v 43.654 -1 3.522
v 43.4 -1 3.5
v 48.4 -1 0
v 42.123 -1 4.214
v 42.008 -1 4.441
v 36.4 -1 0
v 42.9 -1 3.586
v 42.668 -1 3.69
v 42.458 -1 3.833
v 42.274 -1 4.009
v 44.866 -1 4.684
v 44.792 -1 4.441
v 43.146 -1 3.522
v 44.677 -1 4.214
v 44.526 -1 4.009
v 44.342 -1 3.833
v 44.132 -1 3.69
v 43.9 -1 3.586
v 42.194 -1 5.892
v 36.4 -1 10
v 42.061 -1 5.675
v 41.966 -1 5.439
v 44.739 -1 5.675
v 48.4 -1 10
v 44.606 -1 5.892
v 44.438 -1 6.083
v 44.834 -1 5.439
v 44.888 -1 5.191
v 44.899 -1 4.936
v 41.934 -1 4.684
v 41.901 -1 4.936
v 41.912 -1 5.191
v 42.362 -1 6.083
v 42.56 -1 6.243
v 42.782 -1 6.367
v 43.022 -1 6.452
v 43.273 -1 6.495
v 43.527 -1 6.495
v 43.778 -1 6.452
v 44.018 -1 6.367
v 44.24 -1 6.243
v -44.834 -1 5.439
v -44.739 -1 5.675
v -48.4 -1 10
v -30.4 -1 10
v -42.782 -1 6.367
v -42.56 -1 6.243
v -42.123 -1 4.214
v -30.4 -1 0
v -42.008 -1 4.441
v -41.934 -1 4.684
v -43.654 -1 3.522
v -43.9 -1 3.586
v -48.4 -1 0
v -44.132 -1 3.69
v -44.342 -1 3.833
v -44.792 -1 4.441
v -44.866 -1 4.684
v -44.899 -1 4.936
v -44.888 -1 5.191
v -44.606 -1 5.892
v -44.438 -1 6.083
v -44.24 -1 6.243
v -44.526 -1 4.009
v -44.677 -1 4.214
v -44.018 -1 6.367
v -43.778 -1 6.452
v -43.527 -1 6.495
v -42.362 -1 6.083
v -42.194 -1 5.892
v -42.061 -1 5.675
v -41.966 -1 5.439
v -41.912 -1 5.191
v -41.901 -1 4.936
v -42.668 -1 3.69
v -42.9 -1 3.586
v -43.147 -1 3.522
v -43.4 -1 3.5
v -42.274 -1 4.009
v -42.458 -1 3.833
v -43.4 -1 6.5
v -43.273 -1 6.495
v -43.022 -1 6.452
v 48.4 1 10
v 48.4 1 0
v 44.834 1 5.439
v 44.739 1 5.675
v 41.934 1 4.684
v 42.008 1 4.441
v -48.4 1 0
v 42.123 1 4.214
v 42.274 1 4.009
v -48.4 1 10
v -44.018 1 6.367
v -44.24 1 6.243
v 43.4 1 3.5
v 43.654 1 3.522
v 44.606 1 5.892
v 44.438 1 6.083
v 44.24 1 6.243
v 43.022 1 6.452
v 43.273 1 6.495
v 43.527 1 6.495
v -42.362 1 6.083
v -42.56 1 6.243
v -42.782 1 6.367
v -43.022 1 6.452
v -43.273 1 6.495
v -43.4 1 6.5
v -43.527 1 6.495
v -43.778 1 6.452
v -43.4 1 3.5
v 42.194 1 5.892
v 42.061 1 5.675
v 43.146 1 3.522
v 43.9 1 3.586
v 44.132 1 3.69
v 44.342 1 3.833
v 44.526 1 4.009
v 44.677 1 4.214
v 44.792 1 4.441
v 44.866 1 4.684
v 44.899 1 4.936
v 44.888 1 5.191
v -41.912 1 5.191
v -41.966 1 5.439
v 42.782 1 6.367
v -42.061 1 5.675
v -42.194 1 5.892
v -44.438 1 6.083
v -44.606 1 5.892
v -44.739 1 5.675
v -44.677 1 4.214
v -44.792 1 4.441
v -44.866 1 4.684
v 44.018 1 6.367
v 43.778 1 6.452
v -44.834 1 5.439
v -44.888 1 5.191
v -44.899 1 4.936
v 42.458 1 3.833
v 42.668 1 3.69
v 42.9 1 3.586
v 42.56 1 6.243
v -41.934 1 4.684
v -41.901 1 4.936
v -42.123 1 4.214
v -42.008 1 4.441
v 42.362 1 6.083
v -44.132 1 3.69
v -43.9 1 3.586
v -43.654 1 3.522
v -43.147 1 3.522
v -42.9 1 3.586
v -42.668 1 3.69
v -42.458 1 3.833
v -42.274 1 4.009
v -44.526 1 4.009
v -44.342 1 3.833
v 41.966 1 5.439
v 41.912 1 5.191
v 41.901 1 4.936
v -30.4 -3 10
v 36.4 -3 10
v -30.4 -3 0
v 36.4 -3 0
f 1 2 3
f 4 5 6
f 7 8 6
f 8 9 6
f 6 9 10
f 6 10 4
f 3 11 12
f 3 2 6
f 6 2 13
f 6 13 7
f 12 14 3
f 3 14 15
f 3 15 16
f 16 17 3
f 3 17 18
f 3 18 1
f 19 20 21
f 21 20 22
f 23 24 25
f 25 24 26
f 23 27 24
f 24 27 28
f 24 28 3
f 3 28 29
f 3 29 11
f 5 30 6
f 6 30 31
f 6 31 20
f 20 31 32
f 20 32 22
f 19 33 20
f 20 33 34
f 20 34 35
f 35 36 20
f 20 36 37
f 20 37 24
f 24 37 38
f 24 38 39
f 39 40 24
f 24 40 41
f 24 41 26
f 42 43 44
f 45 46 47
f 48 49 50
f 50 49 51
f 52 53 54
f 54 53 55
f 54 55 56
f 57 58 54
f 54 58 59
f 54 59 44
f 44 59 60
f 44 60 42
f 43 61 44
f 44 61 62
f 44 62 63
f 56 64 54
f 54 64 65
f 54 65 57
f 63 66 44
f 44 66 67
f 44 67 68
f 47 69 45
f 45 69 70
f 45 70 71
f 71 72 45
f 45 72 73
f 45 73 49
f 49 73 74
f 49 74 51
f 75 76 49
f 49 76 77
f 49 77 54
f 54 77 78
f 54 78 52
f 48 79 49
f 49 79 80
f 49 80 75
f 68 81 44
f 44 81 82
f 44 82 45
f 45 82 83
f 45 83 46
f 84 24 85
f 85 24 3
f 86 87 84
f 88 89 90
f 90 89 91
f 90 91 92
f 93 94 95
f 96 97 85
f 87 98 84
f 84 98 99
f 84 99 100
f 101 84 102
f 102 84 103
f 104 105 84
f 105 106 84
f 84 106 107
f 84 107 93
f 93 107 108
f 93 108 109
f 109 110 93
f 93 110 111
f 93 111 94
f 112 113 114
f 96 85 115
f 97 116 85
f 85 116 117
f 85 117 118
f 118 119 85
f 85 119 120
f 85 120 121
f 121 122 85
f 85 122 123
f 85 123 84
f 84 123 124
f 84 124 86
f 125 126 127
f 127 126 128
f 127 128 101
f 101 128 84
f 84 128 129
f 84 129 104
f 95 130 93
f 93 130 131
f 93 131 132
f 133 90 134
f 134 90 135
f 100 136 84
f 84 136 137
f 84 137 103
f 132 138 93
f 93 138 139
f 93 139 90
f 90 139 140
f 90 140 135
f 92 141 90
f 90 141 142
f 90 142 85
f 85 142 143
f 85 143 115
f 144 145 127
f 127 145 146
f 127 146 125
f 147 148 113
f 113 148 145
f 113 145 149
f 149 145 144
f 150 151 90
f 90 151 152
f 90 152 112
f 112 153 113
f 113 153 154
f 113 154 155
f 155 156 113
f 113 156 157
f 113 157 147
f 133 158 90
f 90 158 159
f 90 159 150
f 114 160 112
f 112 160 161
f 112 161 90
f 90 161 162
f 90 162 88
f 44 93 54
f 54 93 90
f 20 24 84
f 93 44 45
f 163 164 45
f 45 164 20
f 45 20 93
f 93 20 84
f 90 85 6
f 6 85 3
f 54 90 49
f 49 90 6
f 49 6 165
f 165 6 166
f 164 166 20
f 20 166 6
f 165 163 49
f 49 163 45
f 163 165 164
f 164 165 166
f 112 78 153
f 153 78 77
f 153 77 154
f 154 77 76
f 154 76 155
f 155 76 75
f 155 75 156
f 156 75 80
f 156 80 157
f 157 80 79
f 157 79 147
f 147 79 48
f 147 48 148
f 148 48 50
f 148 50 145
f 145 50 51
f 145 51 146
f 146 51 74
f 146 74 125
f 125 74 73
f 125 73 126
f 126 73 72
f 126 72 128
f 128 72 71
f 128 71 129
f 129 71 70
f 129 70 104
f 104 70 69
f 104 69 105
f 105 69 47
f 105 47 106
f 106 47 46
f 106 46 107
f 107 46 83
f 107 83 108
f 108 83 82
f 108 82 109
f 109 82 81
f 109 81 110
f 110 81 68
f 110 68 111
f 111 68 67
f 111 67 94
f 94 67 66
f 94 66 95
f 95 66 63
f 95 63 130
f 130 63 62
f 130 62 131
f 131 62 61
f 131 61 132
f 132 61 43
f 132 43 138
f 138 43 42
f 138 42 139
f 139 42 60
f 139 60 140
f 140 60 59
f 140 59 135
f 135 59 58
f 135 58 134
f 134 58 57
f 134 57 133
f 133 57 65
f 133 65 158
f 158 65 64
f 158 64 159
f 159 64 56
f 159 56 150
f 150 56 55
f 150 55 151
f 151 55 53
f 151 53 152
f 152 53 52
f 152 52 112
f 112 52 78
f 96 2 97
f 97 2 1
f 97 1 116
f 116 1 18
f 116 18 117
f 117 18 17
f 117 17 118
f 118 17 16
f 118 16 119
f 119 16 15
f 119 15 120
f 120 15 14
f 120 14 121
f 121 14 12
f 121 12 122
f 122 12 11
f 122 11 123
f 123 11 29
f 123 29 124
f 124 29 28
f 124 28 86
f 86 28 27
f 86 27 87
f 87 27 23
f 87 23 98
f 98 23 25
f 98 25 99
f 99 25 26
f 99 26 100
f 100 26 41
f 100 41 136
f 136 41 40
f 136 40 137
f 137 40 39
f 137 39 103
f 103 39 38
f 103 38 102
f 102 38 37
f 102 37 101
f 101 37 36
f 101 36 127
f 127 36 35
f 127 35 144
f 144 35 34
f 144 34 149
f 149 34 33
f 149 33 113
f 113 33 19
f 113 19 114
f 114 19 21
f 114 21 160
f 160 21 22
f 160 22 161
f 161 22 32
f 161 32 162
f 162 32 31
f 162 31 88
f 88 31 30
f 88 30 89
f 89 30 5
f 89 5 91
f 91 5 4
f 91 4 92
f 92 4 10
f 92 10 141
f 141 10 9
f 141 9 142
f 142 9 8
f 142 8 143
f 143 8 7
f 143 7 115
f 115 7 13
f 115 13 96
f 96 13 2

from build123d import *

# Parameters (mm, degrees)
CROQUIS2_W              = 96.8
CROQUIS2_H              = 2
SALIENTE_EXTRUIR2_DEPTH = 10
CROQUIS3_W              = 66.8
CROQUIS3_H              = 10
SALIENTE_EXTRUIR3_DEPTH = 2
CROQUIS5_R              = 1.5
CORTAR_EXTRUIR1_DEPTH   = 2


with BuildPart() as part:
    # Croquis2 → Saliente-Extruir2 (new body)
    with BuildSketch(Plane.XY):
        Rectangle(CROQUIS2_W, CROQUIS2_H)
    extrude(amount=SALIENTE_EXTRUIR2_DEPTH)

    # Croquis3 → Saliente-Extruir3 (add)
    with BuildSketch(Plane.XZ.offset(1)):
        with Locations((3, 5)):
            Rectangle(CROQUIS3_W, CROQUIS3_H)
    extrude(amount=SALIENTE_EXTRUIR3_DEPTH)

    # Croquis5 → Cortar-Extruir1 (cut)
    with BuildSketch(Plane.XZ.offset(1)):
        with Locations(Location((43.4, 5, 0), (0, 0, 270))):
            Circle(CROQUIS5_R)
        with Locations(Location((-43.4, 5, 0), (0, 0, 90))):
            Circle(CROQUIS5_R)
    extrude(amount=-CORTAR_EXTRUIR1_DEPTH, mode=Mode.SUBTRACT)


solid = part.part
